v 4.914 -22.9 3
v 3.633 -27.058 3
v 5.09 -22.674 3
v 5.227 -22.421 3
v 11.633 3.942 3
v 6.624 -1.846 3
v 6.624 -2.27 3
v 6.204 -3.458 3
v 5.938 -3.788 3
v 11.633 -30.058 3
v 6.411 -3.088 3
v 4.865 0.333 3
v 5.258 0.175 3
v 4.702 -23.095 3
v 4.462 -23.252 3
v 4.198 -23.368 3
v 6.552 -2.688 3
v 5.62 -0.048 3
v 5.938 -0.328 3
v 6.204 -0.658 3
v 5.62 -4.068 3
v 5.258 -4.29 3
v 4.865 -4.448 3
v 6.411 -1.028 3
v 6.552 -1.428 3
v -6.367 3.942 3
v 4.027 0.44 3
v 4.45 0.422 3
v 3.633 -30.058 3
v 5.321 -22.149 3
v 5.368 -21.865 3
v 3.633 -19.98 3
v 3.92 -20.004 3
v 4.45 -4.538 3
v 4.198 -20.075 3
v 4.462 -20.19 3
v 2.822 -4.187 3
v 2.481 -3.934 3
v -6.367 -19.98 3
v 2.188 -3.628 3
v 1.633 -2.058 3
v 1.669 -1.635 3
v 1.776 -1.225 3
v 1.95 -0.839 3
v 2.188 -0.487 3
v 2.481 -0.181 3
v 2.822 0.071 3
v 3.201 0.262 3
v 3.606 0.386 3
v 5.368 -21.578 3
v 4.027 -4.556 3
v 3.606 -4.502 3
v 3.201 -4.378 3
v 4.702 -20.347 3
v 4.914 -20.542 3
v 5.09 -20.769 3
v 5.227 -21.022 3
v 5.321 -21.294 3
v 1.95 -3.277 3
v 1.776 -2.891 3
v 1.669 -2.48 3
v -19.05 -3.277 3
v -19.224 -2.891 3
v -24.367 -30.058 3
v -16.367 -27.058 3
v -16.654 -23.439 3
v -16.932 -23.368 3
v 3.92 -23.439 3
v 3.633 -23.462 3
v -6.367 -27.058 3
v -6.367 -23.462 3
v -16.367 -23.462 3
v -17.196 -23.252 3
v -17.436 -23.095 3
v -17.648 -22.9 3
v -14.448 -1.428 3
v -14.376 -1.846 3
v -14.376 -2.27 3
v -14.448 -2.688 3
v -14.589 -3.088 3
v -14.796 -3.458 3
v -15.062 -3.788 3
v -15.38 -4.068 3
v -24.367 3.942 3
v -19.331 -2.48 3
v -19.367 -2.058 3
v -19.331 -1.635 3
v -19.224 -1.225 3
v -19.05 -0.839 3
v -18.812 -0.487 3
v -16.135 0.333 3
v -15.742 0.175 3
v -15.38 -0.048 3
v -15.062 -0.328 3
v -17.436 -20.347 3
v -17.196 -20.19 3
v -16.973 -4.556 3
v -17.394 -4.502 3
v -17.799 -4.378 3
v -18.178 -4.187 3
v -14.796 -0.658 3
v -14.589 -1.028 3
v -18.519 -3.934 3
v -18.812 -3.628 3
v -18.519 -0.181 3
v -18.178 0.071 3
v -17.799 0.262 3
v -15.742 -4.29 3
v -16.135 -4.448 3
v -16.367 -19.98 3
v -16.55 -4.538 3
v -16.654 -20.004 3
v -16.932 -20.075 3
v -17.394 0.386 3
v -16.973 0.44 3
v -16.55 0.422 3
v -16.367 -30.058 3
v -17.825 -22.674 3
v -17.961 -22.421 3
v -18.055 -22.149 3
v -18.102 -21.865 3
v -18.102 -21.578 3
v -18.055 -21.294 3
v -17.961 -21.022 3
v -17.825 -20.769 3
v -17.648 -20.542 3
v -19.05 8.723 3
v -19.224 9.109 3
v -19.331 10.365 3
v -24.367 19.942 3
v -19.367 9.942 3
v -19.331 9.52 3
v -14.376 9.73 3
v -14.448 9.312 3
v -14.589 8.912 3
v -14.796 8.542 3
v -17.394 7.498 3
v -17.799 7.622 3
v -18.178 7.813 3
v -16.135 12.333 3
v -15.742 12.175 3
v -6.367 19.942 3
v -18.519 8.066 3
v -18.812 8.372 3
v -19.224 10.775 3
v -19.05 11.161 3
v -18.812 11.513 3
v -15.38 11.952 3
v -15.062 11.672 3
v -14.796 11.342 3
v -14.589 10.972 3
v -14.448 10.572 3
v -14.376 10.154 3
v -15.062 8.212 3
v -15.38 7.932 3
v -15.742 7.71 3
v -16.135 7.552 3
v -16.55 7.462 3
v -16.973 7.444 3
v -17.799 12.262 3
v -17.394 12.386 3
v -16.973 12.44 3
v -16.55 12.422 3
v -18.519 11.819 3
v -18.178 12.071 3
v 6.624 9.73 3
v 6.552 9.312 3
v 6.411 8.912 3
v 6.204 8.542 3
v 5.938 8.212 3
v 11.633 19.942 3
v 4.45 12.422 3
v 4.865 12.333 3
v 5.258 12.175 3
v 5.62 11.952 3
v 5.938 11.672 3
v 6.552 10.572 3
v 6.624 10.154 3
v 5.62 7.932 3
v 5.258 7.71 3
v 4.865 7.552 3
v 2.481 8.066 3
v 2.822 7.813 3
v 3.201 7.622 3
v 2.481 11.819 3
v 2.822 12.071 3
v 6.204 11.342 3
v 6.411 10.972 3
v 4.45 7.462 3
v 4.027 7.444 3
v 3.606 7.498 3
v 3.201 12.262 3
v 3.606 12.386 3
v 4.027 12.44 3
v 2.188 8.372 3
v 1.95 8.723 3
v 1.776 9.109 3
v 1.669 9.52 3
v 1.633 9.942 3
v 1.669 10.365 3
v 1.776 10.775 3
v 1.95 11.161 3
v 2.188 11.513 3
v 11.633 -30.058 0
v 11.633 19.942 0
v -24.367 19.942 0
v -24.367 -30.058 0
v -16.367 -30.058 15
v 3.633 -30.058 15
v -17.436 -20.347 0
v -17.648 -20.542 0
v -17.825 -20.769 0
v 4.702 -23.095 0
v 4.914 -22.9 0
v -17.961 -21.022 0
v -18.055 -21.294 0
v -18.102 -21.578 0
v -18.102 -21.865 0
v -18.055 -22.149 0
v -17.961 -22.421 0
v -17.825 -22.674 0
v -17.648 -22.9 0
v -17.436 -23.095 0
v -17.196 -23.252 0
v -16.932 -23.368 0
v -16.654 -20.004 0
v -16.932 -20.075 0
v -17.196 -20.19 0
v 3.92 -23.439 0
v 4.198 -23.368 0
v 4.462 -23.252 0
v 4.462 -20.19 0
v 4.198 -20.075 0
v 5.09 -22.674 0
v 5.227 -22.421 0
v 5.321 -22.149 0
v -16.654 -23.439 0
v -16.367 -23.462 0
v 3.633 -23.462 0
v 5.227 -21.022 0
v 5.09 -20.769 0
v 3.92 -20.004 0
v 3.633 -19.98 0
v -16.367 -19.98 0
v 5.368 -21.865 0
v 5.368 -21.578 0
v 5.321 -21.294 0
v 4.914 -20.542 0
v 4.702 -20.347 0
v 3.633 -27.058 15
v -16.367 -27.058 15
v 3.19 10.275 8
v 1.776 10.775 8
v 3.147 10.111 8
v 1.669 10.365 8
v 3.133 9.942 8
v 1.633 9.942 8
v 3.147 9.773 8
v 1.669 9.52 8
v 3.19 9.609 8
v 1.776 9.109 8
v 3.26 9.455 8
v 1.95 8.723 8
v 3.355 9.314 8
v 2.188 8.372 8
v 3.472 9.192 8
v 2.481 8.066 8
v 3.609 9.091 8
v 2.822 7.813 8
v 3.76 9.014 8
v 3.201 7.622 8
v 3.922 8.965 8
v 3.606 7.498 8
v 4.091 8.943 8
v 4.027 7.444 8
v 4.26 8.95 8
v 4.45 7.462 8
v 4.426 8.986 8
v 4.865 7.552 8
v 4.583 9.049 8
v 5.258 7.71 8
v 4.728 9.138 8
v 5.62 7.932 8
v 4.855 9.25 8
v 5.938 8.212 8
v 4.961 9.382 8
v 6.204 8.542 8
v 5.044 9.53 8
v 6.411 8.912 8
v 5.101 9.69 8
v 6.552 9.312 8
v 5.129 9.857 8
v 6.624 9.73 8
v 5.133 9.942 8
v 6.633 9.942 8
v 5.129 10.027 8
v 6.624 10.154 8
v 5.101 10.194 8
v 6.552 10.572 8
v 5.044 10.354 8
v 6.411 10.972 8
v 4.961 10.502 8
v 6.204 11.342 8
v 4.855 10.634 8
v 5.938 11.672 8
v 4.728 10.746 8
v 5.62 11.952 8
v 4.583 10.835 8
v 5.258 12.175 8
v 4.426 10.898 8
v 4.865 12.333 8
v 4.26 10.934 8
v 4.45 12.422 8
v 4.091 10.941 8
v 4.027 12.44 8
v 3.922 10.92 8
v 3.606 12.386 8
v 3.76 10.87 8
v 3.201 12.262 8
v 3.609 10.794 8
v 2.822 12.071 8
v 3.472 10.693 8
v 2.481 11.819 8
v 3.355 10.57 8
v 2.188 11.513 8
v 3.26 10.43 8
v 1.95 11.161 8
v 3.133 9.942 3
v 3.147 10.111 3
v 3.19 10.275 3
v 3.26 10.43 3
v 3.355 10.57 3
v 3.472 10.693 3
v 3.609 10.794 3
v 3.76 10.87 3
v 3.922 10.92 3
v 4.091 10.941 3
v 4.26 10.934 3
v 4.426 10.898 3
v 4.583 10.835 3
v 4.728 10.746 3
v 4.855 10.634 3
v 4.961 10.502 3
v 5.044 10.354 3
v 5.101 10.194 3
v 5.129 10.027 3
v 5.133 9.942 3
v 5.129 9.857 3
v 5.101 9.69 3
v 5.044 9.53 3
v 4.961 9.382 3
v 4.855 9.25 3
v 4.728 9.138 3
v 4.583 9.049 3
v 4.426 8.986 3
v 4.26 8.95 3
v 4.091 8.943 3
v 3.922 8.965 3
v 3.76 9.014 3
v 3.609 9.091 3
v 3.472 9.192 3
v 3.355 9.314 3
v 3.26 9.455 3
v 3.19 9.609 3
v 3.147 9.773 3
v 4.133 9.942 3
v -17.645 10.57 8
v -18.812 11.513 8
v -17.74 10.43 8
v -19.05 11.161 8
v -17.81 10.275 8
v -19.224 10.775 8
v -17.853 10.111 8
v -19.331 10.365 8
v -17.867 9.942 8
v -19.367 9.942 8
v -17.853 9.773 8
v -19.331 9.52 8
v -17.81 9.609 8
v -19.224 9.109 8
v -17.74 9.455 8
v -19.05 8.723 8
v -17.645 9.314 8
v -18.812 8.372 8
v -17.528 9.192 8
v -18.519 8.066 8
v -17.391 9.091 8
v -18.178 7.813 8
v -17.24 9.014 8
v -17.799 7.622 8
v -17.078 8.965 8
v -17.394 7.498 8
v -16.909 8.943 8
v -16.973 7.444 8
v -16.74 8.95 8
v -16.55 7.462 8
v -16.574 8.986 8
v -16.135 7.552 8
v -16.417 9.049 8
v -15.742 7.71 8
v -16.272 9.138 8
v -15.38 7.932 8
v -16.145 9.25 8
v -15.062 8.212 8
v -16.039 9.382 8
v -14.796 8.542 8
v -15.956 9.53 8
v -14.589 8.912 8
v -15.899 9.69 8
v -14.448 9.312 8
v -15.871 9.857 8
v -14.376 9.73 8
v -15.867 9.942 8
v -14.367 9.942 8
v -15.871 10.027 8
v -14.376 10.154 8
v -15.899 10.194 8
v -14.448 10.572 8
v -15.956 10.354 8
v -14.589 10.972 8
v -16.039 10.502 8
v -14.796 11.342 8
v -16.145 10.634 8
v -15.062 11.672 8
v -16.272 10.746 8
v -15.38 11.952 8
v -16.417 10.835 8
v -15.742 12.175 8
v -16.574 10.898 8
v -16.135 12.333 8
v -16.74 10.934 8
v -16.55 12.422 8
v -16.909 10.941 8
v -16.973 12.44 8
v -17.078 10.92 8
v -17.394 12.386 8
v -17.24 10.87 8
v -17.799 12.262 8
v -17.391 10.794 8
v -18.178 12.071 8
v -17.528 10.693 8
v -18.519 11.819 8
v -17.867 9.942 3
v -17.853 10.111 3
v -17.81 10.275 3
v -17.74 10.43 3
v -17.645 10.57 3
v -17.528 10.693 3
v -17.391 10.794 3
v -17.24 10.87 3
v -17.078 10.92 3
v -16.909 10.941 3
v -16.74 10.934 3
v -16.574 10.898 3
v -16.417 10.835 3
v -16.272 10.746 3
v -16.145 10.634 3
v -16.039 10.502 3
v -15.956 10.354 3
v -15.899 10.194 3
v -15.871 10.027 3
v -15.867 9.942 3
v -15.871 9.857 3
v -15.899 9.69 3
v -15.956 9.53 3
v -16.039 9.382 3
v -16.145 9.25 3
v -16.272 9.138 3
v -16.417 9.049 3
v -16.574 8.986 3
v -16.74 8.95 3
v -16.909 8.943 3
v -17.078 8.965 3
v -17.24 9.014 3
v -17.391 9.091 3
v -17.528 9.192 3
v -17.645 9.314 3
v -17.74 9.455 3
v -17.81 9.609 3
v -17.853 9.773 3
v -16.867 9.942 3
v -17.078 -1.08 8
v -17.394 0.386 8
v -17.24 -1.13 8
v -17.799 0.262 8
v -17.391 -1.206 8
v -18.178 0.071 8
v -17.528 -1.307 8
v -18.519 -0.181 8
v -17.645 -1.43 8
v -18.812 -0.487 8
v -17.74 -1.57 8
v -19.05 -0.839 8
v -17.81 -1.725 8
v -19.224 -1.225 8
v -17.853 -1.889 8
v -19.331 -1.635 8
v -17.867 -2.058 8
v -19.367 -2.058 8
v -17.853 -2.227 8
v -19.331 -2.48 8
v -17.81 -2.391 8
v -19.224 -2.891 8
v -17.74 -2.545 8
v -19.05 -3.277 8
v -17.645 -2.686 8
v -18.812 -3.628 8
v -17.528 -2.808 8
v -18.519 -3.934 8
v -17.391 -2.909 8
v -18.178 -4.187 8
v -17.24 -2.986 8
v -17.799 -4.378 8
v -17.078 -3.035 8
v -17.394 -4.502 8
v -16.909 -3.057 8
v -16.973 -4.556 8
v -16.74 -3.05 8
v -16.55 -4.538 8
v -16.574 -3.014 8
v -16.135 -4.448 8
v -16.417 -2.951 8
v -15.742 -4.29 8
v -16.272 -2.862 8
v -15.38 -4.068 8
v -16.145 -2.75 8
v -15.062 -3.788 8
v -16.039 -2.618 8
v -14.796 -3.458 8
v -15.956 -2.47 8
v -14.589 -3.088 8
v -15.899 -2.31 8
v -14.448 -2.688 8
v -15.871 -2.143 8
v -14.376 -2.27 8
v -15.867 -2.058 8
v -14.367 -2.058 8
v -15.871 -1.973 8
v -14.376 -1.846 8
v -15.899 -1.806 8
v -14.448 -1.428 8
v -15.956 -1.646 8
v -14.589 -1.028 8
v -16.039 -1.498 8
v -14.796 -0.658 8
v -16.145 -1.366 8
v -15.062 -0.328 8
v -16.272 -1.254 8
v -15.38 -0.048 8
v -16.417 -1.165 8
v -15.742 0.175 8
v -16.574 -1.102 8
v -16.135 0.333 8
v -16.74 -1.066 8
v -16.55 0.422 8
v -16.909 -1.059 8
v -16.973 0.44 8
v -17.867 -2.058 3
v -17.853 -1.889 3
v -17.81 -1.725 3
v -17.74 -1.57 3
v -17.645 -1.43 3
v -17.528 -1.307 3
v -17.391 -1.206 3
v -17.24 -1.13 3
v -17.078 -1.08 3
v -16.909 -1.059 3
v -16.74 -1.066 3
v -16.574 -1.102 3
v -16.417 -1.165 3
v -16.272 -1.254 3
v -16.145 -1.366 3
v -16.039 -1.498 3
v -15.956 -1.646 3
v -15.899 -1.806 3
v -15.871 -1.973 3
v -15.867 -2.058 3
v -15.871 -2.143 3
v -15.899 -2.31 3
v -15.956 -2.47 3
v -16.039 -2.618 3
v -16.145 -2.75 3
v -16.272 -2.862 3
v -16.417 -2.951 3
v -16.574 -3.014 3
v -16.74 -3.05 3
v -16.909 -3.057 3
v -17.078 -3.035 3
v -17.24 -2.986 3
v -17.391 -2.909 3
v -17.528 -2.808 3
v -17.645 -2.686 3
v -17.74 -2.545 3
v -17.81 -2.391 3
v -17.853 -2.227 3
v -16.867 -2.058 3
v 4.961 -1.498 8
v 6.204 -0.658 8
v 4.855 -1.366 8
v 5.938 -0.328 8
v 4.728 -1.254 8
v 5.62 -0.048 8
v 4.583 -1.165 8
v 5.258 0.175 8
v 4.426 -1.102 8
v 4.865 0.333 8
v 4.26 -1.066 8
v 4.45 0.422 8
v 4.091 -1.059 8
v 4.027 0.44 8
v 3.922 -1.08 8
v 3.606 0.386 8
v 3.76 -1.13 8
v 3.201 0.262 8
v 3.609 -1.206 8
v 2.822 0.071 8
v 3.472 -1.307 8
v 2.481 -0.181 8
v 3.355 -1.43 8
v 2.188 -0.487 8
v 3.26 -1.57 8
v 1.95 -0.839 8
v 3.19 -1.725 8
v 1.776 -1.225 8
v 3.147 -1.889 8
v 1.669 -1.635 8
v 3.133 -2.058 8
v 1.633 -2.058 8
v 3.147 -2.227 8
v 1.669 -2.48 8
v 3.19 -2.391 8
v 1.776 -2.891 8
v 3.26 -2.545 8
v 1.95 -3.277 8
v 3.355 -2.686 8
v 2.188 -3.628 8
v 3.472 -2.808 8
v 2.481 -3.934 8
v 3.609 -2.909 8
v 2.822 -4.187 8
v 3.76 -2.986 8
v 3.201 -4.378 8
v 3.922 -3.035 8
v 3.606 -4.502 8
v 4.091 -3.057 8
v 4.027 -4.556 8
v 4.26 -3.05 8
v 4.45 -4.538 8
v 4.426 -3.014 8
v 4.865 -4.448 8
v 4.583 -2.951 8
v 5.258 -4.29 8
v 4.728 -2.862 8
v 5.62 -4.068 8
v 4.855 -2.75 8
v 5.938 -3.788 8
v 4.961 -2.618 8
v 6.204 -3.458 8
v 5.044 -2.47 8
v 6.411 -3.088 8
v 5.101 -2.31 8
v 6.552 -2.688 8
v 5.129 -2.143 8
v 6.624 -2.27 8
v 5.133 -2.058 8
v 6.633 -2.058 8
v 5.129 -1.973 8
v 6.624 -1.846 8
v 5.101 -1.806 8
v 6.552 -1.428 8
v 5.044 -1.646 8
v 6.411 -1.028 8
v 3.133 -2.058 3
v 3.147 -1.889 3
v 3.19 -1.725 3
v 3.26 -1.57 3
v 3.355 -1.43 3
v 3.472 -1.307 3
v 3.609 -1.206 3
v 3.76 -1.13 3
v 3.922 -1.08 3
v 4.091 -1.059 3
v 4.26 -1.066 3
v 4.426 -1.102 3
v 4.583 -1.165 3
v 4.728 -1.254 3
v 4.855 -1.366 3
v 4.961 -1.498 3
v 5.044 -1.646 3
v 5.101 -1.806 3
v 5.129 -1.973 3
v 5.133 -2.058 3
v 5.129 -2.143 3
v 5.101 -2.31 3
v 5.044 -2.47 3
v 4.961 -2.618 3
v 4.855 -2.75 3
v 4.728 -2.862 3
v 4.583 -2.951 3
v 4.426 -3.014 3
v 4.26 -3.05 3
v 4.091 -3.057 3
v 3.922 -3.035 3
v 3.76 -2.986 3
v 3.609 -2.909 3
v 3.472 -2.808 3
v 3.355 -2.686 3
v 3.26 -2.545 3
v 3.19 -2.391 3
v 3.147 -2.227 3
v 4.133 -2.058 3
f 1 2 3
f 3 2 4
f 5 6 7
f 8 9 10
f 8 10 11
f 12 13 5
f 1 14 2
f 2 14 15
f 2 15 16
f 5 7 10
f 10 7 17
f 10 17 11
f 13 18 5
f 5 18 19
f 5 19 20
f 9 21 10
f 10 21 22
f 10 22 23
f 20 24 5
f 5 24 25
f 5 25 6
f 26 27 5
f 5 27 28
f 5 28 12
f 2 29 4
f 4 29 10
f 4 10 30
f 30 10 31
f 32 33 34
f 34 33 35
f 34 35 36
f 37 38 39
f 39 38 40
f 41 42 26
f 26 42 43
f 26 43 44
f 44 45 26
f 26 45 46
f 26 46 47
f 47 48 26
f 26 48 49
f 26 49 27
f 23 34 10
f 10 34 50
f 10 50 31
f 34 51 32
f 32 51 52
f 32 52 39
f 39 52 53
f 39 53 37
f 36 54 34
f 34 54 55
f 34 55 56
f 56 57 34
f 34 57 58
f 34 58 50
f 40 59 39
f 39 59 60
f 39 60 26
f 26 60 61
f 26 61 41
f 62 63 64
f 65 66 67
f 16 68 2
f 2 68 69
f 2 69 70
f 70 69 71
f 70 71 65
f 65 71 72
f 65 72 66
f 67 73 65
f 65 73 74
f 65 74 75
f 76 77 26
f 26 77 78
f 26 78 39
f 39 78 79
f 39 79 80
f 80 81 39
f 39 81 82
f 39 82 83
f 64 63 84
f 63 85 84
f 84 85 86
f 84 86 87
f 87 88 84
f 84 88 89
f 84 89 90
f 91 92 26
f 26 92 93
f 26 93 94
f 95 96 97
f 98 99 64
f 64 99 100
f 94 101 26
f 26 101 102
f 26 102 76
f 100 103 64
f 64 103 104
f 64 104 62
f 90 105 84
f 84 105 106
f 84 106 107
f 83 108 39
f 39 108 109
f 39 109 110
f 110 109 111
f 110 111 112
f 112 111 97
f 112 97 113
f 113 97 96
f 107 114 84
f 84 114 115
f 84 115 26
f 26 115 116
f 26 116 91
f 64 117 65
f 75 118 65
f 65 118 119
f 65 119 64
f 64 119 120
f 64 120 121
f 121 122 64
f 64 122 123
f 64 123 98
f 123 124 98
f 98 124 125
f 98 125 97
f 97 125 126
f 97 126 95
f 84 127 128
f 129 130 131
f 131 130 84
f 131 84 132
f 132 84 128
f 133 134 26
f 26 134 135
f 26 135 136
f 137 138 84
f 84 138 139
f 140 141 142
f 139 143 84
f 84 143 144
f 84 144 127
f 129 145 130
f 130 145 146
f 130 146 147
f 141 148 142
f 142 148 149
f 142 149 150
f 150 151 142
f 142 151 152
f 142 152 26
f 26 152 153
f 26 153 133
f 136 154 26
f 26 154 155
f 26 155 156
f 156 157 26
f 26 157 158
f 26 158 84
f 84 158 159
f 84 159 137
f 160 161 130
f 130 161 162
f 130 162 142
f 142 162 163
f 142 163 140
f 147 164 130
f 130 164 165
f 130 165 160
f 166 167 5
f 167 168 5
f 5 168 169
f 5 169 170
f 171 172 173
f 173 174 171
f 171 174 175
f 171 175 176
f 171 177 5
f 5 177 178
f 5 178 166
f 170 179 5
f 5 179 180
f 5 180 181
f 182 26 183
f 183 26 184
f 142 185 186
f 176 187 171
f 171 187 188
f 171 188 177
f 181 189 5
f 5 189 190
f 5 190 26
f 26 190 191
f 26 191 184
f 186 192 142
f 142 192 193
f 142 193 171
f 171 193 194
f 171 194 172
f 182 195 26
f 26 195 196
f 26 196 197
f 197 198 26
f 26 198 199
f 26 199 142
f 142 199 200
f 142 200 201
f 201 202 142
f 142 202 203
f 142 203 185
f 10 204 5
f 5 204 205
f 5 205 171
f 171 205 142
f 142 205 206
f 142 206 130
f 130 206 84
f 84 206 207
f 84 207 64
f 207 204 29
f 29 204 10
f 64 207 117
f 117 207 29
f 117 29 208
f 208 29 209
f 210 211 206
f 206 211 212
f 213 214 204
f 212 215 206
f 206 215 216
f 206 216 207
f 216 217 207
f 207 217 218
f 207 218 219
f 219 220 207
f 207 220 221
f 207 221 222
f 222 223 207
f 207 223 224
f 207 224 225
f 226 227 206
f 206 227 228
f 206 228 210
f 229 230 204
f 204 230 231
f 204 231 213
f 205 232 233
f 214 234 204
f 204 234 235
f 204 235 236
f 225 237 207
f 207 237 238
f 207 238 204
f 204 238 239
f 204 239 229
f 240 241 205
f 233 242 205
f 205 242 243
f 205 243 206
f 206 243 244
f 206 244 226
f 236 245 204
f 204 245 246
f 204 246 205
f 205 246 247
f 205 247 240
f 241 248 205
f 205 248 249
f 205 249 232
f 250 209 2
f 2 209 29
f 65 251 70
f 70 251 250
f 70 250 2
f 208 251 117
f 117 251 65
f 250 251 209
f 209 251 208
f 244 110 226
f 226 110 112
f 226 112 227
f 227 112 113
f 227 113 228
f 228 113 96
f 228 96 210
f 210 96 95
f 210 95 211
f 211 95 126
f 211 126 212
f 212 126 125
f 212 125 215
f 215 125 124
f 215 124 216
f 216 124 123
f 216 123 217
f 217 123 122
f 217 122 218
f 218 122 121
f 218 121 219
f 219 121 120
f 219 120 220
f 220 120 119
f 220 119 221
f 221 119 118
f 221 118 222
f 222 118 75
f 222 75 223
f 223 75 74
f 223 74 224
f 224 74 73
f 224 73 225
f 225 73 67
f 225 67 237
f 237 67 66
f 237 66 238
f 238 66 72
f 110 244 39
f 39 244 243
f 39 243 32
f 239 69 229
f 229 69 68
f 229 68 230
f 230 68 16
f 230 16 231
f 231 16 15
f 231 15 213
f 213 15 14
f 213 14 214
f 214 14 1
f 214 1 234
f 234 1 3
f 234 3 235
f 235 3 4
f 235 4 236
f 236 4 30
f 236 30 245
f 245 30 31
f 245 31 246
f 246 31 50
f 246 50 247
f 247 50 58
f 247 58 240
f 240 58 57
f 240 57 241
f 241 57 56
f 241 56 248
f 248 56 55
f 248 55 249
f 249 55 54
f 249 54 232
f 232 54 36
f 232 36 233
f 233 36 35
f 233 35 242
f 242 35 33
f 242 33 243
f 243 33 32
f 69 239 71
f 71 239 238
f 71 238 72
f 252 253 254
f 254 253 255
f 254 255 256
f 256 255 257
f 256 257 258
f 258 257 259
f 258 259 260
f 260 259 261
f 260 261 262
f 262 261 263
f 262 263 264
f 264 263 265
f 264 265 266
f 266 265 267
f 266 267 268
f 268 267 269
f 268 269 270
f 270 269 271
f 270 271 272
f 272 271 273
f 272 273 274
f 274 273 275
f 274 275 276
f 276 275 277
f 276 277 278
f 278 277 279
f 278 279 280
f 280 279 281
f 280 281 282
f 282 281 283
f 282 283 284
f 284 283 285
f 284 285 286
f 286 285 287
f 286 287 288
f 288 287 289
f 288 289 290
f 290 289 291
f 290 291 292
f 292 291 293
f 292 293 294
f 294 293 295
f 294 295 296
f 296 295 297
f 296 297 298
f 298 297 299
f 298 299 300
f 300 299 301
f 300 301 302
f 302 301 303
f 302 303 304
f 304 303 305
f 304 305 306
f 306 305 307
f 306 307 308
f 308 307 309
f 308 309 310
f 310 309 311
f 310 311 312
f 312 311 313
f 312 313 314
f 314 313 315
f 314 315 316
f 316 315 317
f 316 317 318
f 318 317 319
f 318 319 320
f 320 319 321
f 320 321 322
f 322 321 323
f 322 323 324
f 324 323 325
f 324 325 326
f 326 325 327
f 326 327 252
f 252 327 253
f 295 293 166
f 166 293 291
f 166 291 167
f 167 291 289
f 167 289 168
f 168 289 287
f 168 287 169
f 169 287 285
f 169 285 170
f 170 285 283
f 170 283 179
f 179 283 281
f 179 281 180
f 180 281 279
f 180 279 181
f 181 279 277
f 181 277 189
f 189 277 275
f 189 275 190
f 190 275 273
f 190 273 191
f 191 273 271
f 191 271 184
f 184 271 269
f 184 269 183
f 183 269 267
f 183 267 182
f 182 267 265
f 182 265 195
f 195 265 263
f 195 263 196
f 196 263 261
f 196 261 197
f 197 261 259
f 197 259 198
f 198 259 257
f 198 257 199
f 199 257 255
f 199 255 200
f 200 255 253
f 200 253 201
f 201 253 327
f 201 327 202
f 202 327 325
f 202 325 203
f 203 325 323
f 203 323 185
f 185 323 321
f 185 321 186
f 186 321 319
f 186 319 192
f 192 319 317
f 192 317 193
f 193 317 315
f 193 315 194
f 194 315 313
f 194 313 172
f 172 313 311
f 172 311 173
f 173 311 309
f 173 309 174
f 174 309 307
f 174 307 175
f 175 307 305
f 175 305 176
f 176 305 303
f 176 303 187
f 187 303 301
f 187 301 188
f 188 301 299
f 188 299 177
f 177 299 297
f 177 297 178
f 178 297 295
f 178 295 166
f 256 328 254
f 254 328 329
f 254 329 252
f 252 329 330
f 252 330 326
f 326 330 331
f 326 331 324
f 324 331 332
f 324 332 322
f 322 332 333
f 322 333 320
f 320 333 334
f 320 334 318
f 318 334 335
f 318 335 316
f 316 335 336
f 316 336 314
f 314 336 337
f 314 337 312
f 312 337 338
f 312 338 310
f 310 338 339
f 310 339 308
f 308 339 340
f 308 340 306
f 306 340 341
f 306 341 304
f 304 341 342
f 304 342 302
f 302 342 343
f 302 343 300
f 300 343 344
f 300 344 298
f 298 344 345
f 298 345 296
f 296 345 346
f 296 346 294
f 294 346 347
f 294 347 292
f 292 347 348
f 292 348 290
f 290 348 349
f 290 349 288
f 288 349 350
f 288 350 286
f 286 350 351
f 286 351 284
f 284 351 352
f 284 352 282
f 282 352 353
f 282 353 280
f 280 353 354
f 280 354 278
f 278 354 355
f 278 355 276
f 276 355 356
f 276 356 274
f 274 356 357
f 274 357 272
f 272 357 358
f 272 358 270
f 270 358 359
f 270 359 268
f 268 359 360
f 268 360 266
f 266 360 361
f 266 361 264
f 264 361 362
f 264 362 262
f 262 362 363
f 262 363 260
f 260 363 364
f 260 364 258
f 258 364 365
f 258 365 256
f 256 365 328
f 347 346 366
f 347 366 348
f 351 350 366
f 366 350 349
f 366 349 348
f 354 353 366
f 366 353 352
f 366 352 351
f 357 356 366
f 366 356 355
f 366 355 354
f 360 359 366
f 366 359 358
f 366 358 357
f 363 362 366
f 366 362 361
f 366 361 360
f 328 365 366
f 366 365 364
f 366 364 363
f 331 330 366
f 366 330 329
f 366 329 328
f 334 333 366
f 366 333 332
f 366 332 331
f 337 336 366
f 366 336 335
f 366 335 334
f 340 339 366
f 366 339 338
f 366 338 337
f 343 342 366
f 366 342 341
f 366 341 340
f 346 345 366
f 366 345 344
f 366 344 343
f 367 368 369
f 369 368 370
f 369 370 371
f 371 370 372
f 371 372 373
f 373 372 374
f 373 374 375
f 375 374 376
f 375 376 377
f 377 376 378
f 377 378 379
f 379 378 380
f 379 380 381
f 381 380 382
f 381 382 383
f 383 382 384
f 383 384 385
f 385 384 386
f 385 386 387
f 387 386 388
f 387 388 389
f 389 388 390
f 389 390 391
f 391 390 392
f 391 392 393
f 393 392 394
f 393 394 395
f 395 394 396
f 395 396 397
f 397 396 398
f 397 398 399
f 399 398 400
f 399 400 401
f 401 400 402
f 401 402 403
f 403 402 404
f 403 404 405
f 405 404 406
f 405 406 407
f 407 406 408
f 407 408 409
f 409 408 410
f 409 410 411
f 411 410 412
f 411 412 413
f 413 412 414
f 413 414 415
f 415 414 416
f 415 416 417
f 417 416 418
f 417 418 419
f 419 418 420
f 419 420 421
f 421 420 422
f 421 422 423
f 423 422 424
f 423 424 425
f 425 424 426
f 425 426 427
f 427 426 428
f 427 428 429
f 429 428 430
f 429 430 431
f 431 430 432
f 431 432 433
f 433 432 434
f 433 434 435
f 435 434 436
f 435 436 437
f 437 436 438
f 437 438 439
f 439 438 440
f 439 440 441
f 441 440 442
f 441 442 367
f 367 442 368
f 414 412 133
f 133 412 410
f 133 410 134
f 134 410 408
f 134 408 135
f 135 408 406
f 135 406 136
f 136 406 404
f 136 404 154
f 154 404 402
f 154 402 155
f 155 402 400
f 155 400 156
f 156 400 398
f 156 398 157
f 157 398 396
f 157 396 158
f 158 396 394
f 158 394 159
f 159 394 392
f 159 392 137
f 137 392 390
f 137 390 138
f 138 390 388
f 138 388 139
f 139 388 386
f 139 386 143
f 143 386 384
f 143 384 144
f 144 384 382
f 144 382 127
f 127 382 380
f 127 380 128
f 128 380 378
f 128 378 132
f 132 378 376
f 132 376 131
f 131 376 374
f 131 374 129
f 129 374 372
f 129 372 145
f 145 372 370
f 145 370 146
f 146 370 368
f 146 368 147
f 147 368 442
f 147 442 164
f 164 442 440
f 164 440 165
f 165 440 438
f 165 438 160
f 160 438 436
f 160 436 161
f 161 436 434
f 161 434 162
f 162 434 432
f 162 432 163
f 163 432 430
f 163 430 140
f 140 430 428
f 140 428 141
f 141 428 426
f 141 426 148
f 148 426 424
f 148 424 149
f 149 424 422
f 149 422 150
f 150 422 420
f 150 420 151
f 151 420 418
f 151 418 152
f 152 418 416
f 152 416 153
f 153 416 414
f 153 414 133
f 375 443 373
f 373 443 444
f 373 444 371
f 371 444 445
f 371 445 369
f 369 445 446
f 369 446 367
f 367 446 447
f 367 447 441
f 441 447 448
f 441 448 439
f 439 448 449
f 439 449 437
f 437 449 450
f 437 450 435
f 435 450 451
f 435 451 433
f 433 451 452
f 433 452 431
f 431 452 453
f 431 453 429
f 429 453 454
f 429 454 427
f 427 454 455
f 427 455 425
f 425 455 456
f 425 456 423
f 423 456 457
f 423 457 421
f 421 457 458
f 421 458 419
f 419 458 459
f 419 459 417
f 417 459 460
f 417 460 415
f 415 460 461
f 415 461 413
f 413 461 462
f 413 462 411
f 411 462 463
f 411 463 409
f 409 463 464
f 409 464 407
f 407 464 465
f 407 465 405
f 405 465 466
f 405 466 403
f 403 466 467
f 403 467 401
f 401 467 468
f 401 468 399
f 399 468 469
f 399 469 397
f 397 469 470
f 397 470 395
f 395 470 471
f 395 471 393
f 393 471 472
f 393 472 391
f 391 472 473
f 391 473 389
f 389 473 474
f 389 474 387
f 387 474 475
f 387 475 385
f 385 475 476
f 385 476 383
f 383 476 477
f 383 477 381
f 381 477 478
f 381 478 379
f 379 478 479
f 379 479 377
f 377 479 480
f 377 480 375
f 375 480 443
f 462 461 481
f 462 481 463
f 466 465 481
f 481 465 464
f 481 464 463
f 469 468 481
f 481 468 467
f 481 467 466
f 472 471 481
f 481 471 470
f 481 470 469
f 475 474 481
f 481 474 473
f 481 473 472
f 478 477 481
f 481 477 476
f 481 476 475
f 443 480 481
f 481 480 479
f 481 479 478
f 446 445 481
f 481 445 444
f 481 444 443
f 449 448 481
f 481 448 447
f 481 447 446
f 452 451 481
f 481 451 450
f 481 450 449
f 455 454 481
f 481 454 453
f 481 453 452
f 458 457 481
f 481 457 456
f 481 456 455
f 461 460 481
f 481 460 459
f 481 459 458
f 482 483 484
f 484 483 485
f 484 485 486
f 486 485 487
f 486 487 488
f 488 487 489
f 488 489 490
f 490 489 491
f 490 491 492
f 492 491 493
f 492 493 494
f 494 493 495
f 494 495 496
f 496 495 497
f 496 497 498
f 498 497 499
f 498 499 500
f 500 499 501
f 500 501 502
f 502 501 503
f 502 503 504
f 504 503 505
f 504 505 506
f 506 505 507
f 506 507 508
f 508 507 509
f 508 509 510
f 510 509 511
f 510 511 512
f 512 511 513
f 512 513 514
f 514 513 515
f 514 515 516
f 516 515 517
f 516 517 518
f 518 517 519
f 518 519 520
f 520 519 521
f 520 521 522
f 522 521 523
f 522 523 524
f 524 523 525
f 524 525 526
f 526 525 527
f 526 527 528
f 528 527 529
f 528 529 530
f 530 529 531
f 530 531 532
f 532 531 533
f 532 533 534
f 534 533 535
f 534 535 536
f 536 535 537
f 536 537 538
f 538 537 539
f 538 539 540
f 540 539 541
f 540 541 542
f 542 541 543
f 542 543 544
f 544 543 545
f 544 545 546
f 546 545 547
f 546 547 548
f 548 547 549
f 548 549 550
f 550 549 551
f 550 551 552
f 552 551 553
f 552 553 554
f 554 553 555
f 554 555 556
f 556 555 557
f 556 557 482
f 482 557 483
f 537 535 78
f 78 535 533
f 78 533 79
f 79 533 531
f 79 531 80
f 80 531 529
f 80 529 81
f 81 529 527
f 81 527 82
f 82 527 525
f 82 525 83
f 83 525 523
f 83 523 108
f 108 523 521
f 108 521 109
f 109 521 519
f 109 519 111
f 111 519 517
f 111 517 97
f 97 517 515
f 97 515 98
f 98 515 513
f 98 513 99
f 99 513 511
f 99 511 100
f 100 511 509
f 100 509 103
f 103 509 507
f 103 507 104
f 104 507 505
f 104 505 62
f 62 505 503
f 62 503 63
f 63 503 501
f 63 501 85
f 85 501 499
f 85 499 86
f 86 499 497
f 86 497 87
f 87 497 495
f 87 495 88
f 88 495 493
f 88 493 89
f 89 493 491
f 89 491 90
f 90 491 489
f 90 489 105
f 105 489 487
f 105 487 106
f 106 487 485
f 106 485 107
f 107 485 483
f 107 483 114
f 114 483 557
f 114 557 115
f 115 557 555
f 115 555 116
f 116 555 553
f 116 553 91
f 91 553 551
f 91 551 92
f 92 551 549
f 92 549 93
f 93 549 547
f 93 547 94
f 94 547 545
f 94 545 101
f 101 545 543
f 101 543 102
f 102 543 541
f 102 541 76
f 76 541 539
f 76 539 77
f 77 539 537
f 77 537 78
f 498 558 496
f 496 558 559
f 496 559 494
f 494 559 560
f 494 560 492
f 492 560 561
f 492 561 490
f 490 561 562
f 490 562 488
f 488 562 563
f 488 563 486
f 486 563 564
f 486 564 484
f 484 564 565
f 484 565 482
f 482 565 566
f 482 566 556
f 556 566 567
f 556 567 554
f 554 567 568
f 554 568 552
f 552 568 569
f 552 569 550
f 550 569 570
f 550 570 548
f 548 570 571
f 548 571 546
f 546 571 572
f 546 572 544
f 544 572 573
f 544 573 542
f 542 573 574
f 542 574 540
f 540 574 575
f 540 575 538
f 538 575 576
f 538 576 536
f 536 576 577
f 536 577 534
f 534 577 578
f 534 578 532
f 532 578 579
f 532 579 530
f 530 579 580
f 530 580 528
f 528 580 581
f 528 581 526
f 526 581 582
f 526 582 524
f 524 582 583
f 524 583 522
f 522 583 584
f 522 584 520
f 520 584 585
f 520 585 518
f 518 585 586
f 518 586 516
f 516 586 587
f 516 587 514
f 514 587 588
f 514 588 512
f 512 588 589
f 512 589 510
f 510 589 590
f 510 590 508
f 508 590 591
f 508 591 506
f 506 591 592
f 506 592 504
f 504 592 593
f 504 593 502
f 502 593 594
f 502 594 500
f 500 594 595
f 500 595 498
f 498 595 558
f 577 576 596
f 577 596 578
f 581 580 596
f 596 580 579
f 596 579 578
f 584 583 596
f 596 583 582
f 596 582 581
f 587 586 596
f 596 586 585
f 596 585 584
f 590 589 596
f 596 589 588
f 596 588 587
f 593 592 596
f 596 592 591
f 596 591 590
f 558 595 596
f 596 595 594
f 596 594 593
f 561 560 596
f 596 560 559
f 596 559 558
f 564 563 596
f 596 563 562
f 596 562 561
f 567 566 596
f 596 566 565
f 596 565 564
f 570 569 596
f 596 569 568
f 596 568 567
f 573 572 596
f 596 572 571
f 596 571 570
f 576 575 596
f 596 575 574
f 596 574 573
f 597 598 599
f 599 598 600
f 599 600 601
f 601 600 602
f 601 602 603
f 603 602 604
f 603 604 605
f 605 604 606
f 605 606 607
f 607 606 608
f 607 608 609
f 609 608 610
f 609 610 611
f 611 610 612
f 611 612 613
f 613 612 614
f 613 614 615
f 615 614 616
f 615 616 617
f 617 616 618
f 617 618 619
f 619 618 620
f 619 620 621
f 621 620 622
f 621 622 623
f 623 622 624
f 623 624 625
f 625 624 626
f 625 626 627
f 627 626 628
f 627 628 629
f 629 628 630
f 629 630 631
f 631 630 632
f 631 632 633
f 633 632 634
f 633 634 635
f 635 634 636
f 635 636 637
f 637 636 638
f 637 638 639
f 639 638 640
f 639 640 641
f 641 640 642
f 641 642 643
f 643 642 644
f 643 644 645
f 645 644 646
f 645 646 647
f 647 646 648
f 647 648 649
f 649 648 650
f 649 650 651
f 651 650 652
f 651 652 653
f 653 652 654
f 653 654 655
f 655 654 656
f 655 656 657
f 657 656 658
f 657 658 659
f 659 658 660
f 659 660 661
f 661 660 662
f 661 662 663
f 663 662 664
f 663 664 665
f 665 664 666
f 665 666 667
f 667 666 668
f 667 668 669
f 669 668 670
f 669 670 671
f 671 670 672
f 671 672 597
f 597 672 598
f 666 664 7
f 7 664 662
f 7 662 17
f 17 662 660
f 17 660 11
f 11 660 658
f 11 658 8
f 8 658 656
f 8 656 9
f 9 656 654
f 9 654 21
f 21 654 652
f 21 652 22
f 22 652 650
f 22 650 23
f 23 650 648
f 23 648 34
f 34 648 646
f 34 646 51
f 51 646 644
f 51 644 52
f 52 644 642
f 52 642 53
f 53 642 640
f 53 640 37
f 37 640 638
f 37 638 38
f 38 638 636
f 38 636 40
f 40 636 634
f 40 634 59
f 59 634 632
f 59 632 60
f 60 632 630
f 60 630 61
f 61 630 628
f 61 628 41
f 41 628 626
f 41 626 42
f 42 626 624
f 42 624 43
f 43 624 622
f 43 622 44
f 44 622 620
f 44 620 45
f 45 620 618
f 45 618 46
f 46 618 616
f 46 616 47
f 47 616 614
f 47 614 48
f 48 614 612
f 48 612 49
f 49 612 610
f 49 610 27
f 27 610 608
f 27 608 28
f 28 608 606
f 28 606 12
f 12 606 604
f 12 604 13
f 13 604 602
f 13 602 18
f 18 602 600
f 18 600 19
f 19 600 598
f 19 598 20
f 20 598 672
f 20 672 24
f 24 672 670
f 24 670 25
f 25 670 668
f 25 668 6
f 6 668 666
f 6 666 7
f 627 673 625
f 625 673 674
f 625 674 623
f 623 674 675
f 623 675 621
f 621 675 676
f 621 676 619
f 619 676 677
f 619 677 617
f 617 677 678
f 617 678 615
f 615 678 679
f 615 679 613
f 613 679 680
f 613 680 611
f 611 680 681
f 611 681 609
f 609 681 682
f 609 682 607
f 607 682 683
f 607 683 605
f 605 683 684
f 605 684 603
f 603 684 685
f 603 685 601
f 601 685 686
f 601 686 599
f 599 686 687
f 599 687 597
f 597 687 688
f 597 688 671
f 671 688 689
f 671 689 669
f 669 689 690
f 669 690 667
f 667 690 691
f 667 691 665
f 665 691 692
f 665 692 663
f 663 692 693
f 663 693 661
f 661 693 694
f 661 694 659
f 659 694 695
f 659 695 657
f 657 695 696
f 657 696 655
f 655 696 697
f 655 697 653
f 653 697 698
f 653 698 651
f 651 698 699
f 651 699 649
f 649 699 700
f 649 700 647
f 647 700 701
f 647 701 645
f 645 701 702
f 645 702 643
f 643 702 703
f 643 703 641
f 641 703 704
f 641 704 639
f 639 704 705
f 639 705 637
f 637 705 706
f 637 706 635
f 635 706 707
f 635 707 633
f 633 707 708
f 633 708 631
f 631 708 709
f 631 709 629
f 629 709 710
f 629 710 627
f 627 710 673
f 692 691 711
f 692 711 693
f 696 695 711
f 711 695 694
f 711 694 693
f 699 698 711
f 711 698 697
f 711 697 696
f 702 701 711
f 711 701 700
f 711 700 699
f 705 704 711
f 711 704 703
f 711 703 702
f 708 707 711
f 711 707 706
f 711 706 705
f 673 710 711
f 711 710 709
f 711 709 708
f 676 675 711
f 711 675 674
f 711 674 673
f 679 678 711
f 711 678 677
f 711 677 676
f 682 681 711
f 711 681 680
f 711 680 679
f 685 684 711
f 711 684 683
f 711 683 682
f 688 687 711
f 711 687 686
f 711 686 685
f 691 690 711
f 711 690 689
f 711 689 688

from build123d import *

# Parameters (mm, degrees)
SKETCH1_W           = 36
SKETCH1_H           = 50
BOSS_EXTRUDE1_DEPTH = 3
SKETCH2_W           = 20
SKETCH2_H           = 3
BOSS_EXTRUDE2_DEPTH = 12
CUT_EXTRUDE1_DEPTH  = 5
SKETCH5_R           = 2.5
SKETCH5_R_2         = 1
BOSS_EXTRUDE4_DEPTH = 5


with BuildPart() as part:
    # Sketch1 → Boss-Extrude1 (new body)
    with BuildSketch(Plane.XY):
        with Locations((-6.367052023, -5.057803468)):
            Rectangle(SKETCH1_W, SKETCH1_H)
    extrude(amount=BOSS_EXTRUDE1_DEPTH)

    # Sketch2 → Boss-Extrude2 (add)
    with BuildSketch(Plane.XY.offset(3)):
        with Locations((-6.367052023, -28.557803468)):
            Rectangle(SKETCH2_W, SKETCH2_H)
    extrude(amount=BOSS_EXTRUDE2_DEPTH)

    # Sketch4 → Cut-Extrude1 (cut)
    with BuildSketch(Plane.XY.offset(3)):
        with BuildLine():
            Line((-16.367052023, -19.980355704), (3.632947977, -19.980355704))
            ThreePointArc((3.632947977, -19.980355704), (5.373912404, -21.721320132), (3.632947977, -23.462284559))
            Line((3.632947977, -23.462284559), (-16.367052023, -23.462284559))
            ThreePointArc((-16.367052023, -23.462284559), (-18.108016451, -21.721320132), (-16.367052023, -19.980355704))
        make_face()
    extrude(amount=-CUT_EXTRUDE1_DEPTH, mode=Mode.SUBTRACT)

    # Sketch5 → Boss-Extrude4 (add)
    # profile 1 of 4: a face of its own
    with BuildSketch(Plane.XY.offset(3)):
        with Locations(Location((4.132947977, 9.942196532, 0), (0, 0, 180))):
            Circle(SKETCH5_R)
        with Locations((4.132947977, 9.942196532)):
            Circle(SKETCH5_R_2, mode=Mode.SUBTRACT)
    # profile 2 of 4: a face of its own
    with BuildSketch(Plane.XY.offset(3)):
        with Locations(Location((-16.867052023, 9.942196532, 0), (0, 0, 180))):
            Circle(SKETCH5_R)
        with Locations((-16.867052023, 9.942196532)):
            Circle(SKETCH5_R_2, mode=Mode.SUBTRACT)
    # profile 3 of 4: a face of its own
    with BuildSketch(Plane.XY.offset(3)):
        with Locations(Location((-16.867052023, -2.057803468, 0), (0, 0, 180))):
            Circle(SKETCH5_R)
        with Locations((-16.867052023, -2.057803468)):
            Circle(SKETCH5_R_2, mode=Mode.SUBTRACT)
    # profile 4 of 4: a face of its own
    with BuildSketch(Plane.XY.offset(3)):
        with Locations(Location((4.132947977, -2.057803468, 0), (0, 0, 180))):
            Circle(SKETCH5_R)
        with Locations((4.132947977, -2.057803468)):
            Circle(SKETCH5_R_2, mode=Mode.SUBTRACT)
    extrude(amount=BOSS_EXTRUDE4_DEPTH)


solid = part.part
